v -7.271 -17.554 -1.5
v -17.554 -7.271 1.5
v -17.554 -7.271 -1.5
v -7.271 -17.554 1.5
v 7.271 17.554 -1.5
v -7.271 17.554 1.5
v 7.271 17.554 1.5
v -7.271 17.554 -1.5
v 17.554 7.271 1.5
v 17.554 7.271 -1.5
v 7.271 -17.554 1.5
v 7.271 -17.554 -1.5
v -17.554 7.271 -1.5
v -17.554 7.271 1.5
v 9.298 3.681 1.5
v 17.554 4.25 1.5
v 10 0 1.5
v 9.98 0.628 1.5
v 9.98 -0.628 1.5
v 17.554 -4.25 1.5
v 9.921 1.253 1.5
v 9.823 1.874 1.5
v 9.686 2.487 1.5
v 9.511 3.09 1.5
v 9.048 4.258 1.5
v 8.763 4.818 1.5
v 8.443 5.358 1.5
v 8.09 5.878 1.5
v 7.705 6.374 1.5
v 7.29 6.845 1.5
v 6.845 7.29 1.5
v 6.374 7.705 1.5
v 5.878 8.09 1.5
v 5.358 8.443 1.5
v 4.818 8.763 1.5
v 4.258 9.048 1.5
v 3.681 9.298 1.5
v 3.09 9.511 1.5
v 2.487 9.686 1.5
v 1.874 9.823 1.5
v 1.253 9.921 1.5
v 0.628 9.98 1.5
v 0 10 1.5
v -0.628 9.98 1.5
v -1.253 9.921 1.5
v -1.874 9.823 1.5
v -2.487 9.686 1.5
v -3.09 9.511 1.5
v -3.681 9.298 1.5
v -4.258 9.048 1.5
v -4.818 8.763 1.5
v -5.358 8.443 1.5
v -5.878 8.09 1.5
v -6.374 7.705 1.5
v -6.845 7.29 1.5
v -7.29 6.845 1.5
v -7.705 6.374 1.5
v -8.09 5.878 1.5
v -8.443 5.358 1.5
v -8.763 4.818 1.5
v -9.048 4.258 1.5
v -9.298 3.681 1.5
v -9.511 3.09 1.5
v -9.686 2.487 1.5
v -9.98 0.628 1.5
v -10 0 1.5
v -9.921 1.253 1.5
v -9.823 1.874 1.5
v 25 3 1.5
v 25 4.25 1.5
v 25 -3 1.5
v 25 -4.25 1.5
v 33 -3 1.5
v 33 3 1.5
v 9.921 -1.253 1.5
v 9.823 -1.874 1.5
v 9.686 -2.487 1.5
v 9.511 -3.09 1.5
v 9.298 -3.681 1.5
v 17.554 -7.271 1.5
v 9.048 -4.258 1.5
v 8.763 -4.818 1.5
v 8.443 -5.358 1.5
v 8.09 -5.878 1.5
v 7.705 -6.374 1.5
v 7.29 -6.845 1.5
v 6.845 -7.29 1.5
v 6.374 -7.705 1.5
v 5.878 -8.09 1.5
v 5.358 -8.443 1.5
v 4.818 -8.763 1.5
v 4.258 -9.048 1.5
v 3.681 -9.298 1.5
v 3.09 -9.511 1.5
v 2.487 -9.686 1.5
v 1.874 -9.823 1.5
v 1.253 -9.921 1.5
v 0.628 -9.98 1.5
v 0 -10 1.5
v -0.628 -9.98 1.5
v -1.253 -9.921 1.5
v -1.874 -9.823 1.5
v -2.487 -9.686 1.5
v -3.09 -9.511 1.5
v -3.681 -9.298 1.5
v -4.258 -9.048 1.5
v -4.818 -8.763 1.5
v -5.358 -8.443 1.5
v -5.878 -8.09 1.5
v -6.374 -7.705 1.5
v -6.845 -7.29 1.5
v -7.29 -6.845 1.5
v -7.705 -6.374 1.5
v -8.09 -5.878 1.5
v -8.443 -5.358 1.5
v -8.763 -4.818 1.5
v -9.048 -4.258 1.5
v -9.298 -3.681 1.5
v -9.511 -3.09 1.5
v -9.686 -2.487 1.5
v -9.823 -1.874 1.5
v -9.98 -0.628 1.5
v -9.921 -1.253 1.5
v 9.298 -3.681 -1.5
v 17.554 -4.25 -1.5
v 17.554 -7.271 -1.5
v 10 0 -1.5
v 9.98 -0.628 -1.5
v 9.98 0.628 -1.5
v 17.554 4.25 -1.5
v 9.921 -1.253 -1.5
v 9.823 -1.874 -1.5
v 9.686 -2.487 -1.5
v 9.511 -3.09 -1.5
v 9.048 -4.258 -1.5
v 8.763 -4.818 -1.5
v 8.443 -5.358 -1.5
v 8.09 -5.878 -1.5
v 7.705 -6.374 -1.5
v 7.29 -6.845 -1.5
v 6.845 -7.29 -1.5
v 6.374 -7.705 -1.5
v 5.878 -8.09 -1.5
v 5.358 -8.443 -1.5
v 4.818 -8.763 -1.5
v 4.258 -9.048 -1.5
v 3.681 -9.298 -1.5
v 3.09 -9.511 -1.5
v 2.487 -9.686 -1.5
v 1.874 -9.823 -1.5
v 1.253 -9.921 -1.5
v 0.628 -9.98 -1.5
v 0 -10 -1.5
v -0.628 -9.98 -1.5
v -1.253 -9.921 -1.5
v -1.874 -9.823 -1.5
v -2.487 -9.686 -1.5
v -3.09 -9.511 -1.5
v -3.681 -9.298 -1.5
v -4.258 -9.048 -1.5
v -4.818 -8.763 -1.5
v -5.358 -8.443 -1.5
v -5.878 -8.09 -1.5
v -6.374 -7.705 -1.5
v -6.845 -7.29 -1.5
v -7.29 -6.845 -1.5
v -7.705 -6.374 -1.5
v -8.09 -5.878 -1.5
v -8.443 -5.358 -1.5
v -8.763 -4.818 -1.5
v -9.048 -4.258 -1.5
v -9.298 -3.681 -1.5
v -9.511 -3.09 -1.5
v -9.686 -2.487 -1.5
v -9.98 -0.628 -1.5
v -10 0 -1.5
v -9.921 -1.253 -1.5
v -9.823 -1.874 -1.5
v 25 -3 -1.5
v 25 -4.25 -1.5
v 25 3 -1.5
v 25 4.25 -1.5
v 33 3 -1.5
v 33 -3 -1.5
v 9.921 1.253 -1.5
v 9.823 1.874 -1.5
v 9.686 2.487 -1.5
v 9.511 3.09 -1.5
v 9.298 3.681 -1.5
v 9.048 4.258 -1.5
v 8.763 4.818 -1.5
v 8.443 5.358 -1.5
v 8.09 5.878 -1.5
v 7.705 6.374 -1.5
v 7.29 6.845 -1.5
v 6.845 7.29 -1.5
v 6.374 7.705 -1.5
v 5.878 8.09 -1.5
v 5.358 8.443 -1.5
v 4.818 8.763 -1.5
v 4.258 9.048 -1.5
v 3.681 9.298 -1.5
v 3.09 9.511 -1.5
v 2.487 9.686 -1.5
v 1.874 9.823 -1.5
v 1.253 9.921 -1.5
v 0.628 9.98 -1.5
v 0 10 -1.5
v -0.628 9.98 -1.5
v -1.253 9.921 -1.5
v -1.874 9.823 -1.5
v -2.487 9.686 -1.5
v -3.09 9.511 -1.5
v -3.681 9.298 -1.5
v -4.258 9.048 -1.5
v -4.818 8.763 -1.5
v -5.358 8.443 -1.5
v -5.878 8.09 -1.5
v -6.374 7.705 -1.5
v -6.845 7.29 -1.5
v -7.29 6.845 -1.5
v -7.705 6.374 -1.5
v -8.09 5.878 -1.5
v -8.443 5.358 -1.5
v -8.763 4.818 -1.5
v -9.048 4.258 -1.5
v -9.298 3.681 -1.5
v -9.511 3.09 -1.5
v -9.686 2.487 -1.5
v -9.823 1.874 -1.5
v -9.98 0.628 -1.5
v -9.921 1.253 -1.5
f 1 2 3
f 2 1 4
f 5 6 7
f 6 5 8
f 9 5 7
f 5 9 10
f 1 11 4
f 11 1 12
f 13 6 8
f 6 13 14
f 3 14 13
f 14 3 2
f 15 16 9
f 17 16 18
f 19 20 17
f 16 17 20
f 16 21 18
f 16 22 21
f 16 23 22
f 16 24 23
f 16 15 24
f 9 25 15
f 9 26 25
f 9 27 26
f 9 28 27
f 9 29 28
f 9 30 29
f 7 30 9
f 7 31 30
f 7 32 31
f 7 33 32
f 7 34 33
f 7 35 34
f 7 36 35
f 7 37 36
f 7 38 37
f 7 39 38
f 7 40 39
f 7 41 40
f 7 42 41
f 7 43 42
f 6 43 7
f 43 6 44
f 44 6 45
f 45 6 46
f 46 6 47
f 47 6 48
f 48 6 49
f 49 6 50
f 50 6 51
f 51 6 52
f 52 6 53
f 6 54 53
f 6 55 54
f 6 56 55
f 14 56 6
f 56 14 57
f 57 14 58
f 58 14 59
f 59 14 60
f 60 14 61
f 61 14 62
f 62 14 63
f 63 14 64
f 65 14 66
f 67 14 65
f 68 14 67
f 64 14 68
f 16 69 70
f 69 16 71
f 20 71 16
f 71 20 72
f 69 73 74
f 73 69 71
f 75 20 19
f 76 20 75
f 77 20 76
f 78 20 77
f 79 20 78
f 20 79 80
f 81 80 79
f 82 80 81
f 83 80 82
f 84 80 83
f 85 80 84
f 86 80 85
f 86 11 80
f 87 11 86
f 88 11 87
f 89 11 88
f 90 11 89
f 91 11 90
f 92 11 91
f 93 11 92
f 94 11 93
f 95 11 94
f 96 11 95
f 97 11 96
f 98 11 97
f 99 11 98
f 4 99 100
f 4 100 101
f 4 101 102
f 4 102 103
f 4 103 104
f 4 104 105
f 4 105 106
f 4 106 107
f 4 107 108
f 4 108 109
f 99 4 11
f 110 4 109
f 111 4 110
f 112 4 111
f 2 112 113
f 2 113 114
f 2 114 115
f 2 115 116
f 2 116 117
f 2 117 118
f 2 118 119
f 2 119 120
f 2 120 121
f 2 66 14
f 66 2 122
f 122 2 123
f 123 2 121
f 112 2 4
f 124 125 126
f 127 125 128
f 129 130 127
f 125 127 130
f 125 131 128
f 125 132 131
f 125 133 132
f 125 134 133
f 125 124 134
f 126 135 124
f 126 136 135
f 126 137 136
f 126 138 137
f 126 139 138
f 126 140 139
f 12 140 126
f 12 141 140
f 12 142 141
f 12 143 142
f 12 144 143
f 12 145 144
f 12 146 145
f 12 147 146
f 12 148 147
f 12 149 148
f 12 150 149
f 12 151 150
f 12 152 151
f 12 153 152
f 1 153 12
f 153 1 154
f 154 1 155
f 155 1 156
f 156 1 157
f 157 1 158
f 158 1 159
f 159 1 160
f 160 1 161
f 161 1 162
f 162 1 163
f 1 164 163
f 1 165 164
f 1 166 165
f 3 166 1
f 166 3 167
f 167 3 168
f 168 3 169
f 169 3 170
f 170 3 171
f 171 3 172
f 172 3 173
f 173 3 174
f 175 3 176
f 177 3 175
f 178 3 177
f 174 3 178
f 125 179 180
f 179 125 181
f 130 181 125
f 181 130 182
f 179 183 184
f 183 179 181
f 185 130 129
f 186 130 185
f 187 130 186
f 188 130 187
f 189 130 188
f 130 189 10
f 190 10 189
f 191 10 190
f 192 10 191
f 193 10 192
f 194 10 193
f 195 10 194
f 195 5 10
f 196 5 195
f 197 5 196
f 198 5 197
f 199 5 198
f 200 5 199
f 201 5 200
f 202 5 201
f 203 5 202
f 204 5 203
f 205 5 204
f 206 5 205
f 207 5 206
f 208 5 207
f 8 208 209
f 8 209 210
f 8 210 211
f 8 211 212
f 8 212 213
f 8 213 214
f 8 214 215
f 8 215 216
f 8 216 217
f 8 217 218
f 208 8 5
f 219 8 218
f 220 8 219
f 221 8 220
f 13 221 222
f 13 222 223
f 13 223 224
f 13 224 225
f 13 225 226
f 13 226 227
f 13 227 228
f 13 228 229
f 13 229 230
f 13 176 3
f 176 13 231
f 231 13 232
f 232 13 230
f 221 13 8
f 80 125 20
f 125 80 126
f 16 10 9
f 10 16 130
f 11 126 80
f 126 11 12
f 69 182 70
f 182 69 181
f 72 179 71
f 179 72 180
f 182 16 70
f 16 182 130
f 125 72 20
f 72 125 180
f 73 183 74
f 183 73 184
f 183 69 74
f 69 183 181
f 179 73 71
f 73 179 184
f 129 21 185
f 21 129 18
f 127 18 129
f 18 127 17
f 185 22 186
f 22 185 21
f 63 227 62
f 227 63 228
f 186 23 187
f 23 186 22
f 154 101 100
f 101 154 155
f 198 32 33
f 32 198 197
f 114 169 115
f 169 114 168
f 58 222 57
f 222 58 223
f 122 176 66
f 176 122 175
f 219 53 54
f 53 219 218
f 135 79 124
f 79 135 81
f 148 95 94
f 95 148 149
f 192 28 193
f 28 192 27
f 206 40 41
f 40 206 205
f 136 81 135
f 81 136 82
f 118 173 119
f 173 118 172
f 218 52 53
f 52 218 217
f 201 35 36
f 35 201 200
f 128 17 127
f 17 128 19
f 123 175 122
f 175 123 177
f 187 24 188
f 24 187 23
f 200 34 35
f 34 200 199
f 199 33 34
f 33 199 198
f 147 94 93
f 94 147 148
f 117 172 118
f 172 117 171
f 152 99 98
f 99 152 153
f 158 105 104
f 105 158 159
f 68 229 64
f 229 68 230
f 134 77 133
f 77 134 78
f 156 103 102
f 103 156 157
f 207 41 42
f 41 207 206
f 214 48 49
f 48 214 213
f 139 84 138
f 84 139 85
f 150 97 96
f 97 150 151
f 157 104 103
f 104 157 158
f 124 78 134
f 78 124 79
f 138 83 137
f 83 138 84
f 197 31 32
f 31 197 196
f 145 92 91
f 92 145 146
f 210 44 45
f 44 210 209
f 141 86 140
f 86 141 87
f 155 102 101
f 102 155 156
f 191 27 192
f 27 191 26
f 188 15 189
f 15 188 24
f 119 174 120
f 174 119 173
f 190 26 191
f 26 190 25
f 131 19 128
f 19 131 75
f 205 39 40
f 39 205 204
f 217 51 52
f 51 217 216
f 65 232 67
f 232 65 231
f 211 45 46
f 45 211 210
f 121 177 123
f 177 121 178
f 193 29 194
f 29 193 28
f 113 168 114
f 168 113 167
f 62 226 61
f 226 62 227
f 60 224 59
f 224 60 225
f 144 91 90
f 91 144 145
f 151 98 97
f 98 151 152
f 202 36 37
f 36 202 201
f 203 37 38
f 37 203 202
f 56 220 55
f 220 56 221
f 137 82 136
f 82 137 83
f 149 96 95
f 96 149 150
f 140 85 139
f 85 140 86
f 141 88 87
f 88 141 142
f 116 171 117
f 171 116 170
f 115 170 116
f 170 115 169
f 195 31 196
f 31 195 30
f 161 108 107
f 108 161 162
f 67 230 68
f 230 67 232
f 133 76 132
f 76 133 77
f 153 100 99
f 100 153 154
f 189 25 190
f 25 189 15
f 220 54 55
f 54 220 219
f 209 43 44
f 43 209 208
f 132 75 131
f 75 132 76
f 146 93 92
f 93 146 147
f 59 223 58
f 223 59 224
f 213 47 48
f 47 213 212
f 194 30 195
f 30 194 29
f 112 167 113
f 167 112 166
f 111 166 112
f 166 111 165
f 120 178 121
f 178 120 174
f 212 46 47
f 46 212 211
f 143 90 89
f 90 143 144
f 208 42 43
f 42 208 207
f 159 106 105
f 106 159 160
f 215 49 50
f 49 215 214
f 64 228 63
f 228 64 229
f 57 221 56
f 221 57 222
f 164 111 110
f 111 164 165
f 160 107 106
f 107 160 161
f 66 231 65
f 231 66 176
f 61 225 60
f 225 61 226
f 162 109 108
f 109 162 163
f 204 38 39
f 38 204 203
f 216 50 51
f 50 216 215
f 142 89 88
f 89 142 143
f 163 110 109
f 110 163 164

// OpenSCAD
IM_offset = 0.05;

w_port = 6;
h_port = 3;

w_plate = 38; 
h_plate = 3;

d_hole = 20;


module sampleHolder(){
    difference(){
    union(){
        rotate([0, 0, 45/2]) cylinder(d = w_plate, h = h_plate, center=true, $fn=8);
        translate([20, 0, 0]) cube([10, 8.5, h_port], center=true);
        translate([28, 0, 0]) cube([10, w_port, h_port], center=true);
    }
    cylinder(d = d_hole, h = 20, center=true, $fn=100);
    }
}

sampleHolder();
